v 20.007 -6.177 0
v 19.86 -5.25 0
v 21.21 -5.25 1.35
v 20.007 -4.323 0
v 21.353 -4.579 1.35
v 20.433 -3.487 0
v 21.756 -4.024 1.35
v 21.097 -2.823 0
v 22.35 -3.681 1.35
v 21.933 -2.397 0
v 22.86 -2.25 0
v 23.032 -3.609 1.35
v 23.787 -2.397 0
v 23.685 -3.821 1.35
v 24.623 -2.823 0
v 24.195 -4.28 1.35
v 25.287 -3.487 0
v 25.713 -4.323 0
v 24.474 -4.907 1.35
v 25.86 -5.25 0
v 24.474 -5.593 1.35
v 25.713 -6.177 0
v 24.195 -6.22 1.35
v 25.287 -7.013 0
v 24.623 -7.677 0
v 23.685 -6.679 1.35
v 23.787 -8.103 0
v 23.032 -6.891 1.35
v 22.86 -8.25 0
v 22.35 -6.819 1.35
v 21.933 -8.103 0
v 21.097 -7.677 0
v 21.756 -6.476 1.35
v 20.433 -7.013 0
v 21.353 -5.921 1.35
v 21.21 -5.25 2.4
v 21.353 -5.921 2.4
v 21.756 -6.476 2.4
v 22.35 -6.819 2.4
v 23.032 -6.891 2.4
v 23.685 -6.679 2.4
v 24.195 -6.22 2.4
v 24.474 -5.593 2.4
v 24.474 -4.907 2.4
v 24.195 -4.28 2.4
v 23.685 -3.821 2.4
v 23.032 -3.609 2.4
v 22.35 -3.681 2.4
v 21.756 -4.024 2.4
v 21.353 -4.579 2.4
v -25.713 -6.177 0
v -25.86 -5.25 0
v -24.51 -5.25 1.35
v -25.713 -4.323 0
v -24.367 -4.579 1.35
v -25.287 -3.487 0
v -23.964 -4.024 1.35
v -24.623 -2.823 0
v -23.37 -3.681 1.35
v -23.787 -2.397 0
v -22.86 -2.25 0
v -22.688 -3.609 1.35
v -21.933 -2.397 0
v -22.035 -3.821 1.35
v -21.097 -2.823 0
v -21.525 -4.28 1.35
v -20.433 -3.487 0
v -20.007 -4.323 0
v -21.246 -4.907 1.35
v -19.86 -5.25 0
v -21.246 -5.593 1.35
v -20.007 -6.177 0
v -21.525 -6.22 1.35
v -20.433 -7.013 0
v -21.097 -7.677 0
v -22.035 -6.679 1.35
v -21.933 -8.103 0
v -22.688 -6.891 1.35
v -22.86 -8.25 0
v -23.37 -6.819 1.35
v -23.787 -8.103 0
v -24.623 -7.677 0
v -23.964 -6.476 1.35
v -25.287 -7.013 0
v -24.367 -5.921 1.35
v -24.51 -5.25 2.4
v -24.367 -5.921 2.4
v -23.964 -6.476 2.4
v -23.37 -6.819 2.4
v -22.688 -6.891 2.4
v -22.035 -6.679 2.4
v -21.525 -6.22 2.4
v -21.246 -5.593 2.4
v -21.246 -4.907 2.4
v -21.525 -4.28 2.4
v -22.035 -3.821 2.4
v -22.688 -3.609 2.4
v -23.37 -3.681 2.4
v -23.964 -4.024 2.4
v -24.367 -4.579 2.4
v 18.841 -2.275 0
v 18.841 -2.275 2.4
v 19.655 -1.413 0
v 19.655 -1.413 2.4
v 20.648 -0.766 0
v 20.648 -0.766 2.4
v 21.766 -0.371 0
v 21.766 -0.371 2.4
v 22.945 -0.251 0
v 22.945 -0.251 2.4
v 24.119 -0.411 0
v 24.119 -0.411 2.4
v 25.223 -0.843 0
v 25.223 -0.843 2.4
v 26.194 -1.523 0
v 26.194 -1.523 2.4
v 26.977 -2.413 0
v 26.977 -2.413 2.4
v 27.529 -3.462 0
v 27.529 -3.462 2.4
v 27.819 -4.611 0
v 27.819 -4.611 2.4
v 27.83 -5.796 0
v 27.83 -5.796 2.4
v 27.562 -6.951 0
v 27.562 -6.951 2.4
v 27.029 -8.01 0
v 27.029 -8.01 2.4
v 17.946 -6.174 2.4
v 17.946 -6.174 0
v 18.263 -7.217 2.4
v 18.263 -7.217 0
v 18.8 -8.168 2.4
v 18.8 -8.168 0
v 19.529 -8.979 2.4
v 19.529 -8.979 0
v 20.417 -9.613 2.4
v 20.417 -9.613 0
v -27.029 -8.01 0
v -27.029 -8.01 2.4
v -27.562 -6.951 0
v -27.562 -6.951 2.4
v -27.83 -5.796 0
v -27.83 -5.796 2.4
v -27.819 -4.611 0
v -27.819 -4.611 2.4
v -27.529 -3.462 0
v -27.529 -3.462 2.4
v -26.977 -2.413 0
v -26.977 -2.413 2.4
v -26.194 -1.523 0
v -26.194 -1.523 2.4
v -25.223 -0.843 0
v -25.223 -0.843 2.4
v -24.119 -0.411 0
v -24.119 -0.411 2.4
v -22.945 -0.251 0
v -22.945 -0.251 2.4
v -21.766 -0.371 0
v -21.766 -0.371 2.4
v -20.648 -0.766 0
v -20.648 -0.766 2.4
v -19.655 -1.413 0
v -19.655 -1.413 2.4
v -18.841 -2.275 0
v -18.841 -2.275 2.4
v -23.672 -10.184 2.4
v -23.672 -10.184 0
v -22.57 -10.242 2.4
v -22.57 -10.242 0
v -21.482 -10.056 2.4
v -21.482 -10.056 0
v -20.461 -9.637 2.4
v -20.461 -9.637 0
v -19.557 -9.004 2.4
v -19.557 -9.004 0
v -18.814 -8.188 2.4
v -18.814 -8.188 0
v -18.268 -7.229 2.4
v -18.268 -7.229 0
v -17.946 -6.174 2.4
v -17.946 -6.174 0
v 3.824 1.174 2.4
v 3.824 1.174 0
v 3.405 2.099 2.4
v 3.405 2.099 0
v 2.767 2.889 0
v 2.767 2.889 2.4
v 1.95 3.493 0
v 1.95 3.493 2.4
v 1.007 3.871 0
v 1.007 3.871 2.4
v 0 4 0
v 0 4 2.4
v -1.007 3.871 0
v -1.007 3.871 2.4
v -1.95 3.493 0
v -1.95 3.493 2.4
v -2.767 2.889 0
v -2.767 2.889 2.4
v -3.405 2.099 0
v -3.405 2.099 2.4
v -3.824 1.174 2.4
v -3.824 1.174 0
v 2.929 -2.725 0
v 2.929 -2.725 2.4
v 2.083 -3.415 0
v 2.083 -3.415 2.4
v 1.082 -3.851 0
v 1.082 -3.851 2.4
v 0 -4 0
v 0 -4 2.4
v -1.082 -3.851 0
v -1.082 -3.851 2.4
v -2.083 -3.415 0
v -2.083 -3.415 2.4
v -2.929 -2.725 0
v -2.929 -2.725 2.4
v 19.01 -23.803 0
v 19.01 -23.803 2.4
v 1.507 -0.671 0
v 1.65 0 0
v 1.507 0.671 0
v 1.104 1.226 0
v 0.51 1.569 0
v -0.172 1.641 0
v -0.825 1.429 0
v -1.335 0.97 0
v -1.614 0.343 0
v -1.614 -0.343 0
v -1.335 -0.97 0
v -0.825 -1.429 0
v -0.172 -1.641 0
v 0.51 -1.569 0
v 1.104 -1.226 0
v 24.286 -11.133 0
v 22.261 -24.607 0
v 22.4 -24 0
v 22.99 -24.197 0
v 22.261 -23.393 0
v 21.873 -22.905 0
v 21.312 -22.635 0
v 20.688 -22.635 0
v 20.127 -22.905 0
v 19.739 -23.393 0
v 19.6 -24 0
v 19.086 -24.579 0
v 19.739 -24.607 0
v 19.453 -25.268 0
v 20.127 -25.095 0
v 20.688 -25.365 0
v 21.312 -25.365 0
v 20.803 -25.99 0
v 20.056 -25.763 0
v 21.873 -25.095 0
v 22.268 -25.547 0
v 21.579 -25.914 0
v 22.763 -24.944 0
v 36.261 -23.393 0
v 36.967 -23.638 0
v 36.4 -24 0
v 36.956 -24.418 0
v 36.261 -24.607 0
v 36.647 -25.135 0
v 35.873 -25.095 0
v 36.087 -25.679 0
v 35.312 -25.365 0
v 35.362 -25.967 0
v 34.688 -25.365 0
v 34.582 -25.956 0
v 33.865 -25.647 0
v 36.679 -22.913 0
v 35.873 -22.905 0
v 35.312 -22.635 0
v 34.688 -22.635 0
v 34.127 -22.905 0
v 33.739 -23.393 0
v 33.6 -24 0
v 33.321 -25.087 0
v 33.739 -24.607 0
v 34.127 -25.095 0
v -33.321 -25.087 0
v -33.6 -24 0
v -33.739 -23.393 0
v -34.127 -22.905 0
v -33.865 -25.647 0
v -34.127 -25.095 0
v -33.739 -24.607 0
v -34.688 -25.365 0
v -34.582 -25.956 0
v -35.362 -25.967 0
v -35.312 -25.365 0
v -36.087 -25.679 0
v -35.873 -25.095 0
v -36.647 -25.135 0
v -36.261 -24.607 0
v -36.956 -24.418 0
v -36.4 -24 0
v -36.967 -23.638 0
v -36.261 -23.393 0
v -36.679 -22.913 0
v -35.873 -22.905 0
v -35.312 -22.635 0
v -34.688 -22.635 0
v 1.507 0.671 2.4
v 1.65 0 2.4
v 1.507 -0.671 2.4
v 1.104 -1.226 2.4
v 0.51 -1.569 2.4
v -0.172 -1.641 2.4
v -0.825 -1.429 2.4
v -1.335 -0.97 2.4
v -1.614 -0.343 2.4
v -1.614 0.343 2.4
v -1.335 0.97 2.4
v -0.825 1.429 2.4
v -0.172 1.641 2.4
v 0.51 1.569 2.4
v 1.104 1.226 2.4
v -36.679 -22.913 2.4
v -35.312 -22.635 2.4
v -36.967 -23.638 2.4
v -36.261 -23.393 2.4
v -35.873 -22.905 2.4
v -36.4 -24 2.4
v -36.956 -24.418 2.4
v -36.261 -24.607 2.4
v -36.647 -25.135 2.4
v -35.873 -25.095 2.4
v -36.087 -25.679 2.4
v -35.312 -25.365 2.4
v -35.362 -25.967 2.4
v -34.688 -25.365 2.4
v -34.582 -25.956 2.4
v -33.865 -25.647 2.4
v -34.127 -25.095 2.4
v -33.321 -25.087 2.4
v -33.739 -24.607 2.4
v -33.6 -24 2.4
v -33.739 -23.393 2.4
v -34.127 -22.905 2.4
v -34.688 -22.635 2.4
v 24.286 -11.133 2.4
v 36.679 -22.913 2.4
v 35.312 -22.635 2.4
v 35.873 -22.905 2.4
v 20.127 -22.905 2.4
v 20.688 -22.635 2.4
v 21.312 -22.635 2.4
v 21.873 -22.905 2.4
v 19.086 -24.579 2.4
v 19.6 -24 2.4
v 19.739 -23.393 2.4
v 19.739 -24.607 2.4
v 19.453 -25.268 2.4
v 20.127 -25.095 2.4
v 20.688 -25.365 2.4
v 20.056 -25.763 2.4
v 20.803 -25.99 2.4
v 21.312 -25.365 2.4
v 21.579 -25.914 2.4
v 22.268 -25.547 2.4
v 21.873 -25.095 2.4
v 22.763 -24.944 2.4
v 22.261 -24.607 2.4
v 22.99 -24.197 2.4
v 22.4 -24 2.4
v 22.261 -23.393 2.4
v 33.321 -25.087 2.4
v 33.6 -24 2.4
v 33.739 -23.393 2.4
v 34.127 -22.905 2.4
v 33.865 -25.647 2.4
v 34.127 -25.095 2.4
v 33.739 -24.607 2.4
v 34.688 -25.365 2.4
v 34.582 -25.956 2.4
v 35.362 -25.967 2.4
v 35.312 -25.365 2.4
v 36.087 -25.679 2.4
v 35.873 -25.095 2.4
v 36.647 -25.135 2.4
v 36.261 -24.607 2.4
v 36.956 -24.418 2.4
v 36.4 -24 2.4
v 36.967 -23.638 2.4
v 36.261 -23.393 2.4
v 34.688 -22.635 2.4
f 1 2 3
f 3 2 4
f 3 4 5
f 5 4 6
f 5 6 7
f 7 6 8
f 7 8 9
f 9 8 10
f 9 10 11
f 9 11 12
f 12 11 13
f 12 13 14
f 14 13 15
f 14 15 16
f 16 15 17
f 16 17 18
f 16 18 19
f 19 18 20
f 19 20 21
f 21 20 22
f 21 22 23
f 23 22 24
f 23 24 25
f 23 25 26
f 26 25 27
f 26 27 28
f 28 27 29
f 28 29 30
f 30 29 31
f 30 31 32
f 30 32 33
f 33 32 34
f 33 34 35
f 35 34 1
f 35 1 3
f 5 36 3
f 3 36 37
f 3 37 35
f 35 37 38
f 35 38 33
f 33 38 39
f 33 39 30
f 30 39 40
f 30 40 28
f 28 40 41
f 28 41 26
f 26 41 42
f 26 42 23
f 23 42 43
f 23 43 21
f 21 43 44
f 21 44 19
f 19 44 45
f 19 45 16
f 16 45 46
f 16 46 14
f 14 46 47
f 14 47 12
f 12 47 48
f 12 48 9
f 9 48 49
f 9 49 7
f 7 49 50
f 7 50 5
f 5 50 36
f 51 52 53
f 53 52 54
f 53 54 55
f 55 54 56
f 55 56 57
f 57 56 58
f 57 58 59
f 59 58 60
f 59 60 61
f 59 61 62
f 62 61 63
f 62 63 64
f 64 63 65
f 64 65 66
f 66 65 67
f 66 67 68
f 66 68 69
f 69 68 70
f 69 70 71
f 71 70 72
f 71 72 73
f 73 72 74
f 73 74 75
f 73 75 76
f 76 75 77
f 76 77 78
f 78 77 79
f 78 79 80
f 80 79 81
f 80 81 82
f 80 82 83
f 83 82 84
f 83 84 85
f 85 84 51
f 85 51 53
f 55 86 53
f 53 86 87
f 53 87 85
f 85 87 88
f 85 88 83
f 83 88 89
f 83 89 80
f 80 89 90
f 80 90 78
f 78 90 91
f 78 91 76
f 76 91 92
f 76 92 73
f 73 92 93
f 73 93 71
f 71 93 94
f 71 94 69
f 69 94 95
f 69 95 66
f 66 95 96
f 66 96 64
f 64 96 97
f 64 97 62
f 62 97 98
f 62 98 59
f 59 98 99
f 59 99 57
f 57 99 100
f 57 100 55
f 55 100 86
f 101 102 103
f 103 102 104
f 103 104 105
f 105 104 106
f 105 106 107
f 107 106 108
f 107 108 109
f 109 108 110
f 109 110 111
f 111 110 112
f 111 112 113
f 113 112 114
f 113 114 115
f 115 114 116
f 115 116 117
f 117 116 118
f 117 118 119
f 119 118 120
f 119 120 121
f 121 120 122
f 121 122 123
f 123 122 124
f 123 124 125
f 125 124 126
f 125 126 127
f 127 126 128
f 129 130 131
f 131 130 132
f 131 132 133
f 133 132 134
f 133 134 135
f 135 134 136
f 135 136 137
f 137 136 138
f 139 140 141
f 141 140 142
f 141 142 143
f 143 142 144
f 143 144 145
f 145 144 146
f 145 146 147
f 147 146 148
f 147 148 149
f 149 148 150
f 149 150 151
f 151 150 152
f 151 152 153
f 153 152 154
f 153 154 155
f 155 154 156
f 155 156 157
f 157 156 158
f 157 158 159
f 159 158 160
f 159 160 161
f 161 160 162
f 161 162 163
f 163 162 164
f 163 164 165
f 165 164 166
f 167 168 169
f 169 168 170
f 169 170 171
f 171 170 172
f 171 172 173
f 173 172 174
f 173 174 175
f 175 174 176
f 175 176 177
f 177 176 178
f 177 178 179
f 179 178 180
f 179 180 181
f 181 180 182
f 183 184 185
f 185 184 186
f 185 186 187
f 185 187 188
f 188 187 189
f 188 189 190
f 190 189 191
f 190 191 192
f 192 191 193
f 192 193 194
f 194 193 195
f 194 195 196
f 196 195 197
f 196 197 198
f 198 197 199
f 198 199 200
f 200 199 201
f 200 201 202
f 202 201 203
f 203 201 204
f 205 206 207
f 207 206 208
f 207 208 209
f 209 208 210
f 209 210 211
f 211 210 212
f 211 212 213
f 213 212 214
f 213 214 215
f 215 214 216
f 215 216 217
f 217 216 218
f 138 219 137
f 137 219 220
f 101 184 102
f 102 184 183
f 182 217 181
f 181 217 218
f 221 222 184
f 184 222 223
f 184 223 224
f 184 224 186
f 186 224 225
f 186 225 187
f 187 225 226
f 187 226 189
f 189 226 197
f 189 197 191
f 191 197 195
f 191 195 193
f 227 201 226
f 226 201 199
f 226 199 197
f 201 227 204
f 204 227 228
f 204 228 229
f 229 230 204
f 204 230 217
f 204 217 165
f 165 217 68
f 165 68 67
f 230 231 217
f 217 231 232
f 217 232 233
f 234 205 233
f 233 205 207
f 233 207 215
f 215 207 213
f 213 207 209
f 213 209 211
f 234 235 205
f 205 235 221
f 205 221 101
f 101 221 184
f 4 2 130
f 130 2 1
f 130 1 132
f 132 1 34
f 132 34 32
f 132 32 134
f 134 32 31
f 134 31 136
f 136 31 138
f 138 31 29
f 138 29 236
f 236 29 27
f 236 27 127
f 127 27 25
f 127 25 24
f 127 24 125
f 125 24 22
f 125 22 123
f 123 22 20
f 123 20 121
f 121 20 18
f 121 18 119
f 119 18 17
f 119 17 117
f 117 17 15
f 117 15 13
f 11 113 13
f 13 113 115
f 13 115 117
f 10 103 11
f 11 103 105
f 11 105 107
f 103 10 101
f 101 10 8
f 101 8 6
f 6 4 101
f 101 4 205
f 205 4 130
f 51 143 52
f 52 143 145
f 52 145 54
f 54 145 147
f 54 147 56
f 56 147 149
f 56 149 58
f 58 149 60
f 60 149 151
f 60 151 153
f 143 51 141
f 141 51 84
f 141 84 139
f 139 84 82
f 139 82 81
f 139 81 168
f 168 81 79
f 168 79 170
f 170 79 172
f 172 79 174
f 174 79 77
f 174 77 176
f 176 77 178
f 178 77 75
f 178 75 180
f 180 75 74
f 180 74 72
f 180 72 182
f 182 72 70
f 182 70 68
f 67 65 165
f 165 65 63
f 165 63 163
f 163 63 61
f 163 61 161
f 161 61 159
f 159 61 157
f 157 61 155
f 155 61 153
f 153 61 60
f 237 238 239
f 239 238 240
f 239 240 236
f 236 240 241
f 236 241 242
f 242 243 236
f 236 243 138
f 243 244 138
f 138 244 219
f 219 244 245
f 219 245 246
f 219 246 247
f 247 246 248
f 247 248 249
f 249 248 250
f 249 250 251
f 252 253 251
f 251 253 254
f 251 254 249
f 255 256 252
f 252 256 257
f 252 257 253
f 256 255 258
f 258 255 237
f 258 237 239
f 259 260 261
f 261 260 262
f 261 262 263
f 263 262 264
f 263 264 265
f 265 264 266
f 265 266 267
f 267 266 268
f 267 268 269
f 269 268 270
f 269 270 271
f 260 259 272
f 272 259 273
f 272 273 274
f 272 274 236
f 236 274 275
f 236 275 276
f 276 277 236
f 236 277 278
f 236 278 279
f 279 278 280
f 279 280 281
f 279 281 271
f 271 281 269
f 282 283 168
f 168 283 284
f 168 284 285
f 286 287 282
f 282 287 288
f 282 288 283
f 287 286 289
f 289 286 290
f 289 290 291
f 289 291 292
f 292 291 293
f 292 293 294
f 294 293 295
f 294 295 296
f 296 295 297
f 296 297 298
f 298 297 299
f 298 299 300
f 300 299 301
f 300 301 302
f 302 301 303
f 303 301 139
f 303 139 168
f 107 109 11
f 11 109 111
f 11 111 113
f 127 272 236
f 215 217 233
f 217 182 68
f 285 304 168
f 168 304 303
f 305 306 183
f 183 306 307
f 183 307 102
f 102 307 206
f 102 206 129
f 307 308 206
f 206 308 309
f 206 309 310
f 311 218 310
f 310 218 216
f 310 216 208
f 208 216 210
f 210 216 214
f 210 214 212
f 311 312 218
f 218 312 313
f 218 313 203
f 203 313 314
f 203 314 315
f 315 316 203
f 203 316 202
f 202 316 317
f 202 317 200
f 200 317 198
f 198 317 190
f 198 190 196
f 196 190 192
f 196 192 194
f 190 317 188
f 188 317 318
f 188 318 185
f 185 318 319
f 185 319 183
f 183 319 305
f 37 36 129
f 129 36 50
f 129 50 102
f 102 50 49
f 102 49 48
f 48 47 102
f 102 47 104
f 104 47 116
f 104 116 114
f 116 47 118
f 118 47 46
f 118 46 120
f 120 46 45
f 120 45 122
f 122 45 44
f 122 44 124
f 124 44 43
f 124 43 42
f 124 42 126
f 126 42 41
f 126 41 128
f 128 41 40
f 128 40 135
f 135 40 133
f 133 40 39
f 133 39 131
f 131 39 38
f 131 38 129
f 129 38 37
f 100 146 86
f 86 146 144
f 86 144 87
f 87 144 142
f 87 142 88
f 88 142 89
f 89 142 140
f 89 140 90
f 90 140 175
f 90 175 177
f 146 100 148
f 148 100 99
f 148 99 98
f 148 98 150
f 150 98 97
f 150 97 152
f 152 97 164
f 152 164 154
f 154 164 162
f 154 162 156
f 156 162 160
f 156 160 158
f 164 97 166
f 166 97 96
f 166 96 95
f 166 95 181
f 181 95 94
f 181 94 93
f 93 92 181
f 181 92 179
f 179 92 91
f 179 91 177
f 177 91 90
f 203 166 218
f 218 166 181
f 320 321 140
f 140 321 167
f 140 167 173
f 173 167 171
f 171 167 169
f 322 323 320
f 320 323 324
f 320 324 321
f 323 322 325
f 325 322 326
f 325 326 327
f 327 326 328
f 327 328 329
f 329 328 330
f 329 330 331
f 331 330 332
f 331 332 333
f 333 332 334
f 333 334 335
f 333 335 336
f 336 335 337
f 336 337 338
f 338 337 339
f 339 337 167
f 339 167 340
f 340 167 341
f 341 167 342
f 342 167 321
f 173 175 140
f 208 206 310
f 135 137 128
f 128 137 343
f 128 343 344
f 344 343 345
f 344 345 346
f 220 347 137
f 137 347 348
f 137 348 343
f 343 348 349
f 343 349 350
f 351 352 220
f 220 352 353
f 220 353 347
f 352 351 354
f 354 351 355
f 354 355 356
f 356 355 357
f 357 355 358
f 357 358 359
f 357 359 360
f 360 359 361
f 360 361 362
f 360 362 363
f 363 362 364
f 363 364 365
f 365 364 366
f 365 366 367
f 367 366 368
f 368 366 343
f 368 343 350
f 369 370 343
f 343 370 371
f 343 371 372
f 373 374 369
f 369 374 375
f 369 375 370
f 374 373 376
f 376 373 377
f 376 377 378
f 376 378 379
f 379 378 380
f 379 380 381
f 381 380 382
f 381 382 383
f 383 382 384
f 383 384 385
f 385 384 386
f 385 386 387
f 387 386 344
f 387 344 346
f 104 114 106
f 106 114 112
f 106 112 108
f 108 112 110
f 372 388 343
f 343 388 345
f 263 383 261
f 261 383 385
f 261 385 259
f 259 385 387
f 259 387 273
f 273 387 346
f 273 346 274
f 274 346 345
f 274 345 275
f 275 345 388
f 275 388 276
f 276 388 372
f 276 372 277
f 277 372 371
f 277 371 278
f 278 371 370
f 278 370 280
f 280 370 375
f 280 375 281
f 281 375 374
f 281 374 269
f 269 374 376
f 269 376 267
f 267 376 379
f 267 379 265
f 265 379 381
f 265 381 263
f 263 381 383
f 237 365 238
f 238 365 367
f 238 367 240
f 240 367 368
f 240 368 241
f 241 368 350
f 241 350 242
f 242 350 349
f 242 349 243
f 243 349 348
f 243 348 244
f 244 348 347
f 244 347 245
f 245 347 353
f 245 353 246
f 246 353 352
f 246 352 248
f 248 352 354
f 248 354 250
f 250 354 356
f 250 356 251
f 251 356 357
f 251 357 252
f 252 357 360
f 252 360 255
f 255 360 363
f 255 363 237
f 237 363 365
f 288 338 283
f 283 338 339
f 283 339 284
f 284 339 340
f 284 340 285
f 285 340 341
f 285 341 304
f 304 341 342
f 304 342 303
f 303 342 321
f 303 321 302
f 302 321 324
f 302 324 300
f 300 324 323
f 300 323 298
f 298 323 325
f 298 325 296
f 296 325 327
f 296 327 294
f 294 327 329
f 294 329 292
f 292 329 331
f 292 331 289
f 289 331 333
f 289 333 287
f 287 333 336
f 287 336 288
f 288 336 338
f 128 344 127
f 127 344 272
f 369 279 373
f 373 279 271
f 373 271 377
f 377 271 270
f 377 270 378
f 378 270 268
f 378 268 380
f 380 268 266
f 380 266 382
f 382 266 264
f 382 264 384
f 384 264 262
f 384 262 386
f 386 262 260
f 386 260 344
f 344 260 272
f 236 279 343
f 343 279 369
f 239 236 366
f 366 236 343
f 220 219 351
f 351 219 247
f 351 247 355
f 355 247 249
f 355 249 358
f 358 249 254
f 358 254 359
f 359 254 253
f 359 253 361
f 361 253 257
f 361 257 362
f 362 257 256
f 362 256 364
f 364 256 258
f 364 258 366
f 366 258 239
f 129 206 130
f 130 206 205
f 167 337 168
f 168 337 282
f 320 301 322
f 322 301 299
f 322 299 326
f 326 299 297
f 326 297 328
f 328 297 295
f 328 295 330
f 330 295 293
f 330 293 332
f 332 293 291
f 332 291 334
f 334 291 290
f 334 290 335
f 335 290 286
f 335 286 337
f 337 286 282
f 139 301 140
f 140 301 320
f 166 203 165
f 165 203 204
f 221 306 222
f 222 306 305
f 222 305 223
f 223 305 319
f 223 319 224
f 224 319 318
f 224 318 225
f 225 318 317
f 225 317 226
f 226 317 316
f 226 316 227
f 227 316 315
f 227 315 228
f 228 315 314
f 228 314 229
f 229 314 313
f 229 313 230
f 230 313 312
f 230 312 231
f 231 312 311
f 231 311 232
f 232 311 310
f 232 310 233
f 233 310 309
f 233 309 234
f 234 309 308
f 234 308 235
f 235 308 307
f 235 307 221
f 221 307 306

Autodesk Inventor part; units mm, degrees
sketch "Sketch1" plane through (0, 0, 0) normal (0, 0, 1) x (1, 0, 0)
  line L0 (0, 1.6506) -> (0, -1.6506) construction
  line L1 (-3.3363, 0) -> (3.3363, 0) construction
  circle A0 centre (-22.86, -5.25) radius 2
  circle A1 centre (22.86, -5.25) radius 2
  circle A2 centre (0, 0) radius 2
  circle A3 centre (-35, -24) radius 2
  circle A4 centre (21, -24) radius 2
  circle A5 centre (35, -24) radius 2
  line L2 (-36.6788, -22.913) -> (-24.5388, -4.163)
  line L3 (-21.1812, -6.337) -> (-33.3212, -25.087)
  line L4 (33.3212, -25.087) -> (21.1812, -6.337)
  line L5 (24.5388, -4.163) -> (36.6788, -22.913)
  line L6 (23.3077, -3.3007) -> (0.4477, 1.9493)
  line L7 (-22.4123, -7.1993) -> (0.4477, -1.9493)
  line L8 (-23.3077, -3.3007) -> (-0.4477, 1.9493)
  line L9 (-0.4477, -1.9493) -> (22.4123, -7.1993)
  line L10 (19.0098, -23.8026) -> (20.8698, -5.0526)
  line L11 (22.9902, -24.1974) -> (24.8502, -5.4474)
  point P0 (19.0231, -24.3028)
  point P1 (1.0254, -1.7172)
  point P2 (-21.6219, -7.0177)
  point P3 (0, 3.0781)
  point P4 (22.9979, -23.9085)
  point P5 (21.6219, -7.0177)
  point P6 (24.2863, -11.1327)
  point P7 (20.6959, -6.8051)
  dimension "d0" = 45.72
  dimension "d1" = 22.86
  dimension "d4" = 4
  dimension "d5" = 4
  dimension "d6" = 4
  dimension "d7" = 18.75
  dimension "d8" = 18.75
  dimension "d9" = 14
  dimension "d10" = 18.75
  dimension "d11" = 56
  dimension "d12" = 70
  dimension "d13" = 35
  dimension "d14" = 4
  dimension "d15" = 4
  dimension "d16" = 4
  dimension "d34" = 5.25
  dimension "d35" = 5.25
extrude "Extrusion1" add sketch "Sketch1" along normal blind 2.4
sketch "Sketch2" plane through (0, 0, 2.4) normal (0, 0, 1) x (1, 0, 0)
  line L0 (-21.6219, -7.0177) -> (-33.3212, -25.087) projected
  arc A0 (-36.6788, -22.913) -> (-33.3212, -25.087) centre (-35, -24) ccw projected
  line L1 (-36.6788, -22.913) -> (-24.5388, -4.163) projected
  arc A1 (-23.3077, -3.3007) -> (-24.5388, -4.163) centre (-22.86, -5.25) ccw projected
  line L2 (-23.3077, -3.3007) -> (-0.4477, 1.9493) projected
  line L3 (24.5388, -4.163) -> (36.6788, -22.913) projected
  arc A2 (33.3212, -25.087) -> (36.6788, -22.913) centre (35, -24) ccw projected
  line L4 (33.3212, -25.087) -> (24.2863, -11.1327) projected
  line L5 (0, -2.0521) -> (-21.6219, -7.0177) projected
  arc A3 (19.0098, -23.8026) -> (22.9902, -24.1974) centre (21, -24) ccw projected
  line L6 (0.4477, 1.9493) -> (23.3077, -3.3007) projected
  arc A4 (24.5388, -4.163) -> (23.3077, -3.3007) centre (22.86, -5.25) ccw projected
  arc A5 (0.4477, 1.9493) -> (-0.4477, 1.9493) centre (0, 0) ccw projected
  line L7 (20.6959, -6.8051) -> (0, -2.0521) projected
  line L8 (24.2863, -11.1327) -> (22.9902, -24.1974) projected
  line L9 (19.0098, -23.8026) -> (20.6959, -6.8051) projected
hole "Hole1" at (-35, -24, 2.4) at (21, -24, 2.4) at (35, -24, 2.4) direction (0, 0, -1) diameter 2.8 depth 2.4
sketch "Sketch3" plane through (0, 0, 2.4) normal (0, 0, 1) x (1, 0, 0)
  circle A0 centre (35, -24) radius 1.4 projected
  circle A1 centre (21, -24) radius 1.4 projected
  circle A2 centre (-35, -24) radius 1.4 projected
  line L0 (-21.6219, -7.0177) -> (-33.3212, -25.087) projected
  arc A3 (-36.6788, -22.913) -> (-33.3212, -25.087) centre (-35, -24) ccw projected
  line L1 (-36.6788, -22.913) -> (-24.5388, -4.163) projected
  arc A4 (-23.3077, -3.3007) -> (-24.5388, -4.163) centre (-22.86, -5.25) ccw projected
  line L2 (-23.3077, -3.3007) -> (-0.4477, 1.9493) projected
  line L3 (24.5388, -4.163) -> (36.6788, -22.913) projected
  arc A5 (33.3212, -25.087) -> (36.6788, -22.913) centre (35, -24) ccw projected
  line L4 (33.3212, -25.087) -> (24.2863, -11.1327) projected
  line L5 (0, -2.0521) -> (-21.6219, -7.0177) projected
  arc A6 (19.0098, -23.8026) -> (22.9902, -24.1974) centre (21, -24) ccw projected
  line L6 (0.4477, 1.9493) -> (23.3077, -3.3007) projected
  arc A7 (24.5388, -4.163) -> (23.3077, -3.3007) centre (22.86, -5.25) ccw projected
  arc A8 (0.4477, 1.9493) -> (-0.4477, 1.9493) centre (0, 0) ccw projected
  line L7 (20.6959, -6.8051) -> (0, -2.0521) projected
  line L8 (24.2863, -11.1327) -> (22.9902, -24.1974) projected
  line L9 (19.0098, -23.8026) -> (20.6959, -6.8051) projected
  circle A9 centre (-22.86, -5.25) radius 5
  circle A10 centre (0, 0) radius 4
  circle A11 centre (22.86, -5.25) radius 5
  dimension "d36" = 10
  dimension "d37" = 8
  dimension "d38" = 10
extrude "Extrusion3" add sketch "Sketch3" against normal up to surface (2.4 mm away) contours L5 A9 L0 | L0 A9 L1 A4 L2 L5 | A9 L2 A4 L1 | A10 L2 A8 L6 L7 L5 | L5 L7 A10 | A10 L6 A8 L2 | A11 L6 A7 L3 L9 L7 | L7 L9 A11 | A11 L3 A7 L6
sketch "Sketch4" plane through (0, 0, 0) normal (0, 0, -1) x (-1, 0, 0)
  arc A0 (-2.9285, -2.7246) -> (2.9285, -2.7246) centre (0, 0) ccw projected
  line L0 (-2.9285, -2.7246) -> (-17.946, -6.1735) projected
  arc A1 (-20.4174, -9.6128) -> (-17.946, -6.1735) centre (-22.86, -5.25) ccw projected
  line L1 (-20.4174, -9.6128) -> (-19.0098, -23.8026) projected
  arc A2 (-22.9902, -24.1974) -> (-19.0098, -23.8026) centre (-21, -24) ccw projected
  line L2 (-22.9902, -24.1974) -> (-24.2863, -11.1327) projected
  line L3 (-24.2863, -11.1327) -> (-33.3212, -25.087) projected
  arc A3 (-36.6788, -22.913) -> (-33.3212, -25.087) centre (-35, -24) ccw projected
  line L4 (-36.6788, -22.913) -> (-27.0294, -8.0097) projected
  arc A4 (-18.8414, -2.275) -> (-27.0294, -8.0097) centre (-22.86, -5.25) ccw projected
  line L5 (-18.8414, -2.275) -> (-3.8239, 1.1739) projected
  arc A5 (3.8239, 1.1739) -> (-3.8239, 1.1739) centre (0, 0) ccw projected
  line L6 (3.8239, 1.1739) -> (18.8414, -2.275) projected
  arc A6 (27.0294, -8.0097) -> (18.8414, -2.275) centre (22.86, -5.25) ccw projected
  line L7 (27.0294, -8.0097) -> (36.6788, -22.913) projected
  arc A7 (33.3212, -25.087) -> (36.6788, -22.913) centre (35, -24) ccw projected
  line L8 (33.3212, -25.087) -> (23.6718, -10.1837) projected
  arc A8 (17.946, -6.1735) -> (23.6718, -10.1837) centre (22.86, -5.25) ccw projected
  line L9 (17.946, -6.1735) -> (2.9285, -2.7246) projected
  circle A9 centre (-21, -24) radius 1.4 projected
  circle A10 centre (-35, -24) radius 1.4 projected
  circle A11 centre (35, -24) radius 1.4 projected
hole "Hole3" at (-22.86, -5.25, 0) at (22.86, -5.25, 0) direction (0, 0, 1) diameter 3.3 depth 2.4 countersink diameter 6 countersink angle 90
sketch "Sketch5" plane through (0, 0, 2.4) normal (0, 0, 1) x (1, 0, 0)
  circle A0 centre (22.86, -5.25) radius 1.65 projected
  circle A1 centre (-22.86, -5.25) radius 1.65 projected
  arc A2 (-2.9285, -2.7246) -> (2.9285, -2.7246) centre (0, 0) ccw projected
  line L0 (-2.9285, -2.7246) -> (-17.946, -6.1735) projected
  arc A3 (-23.6718, -10.1837) -> (-17.946, -6.1735) centre (-22.86, -5.25) ccw projected
  line L1 (-23.6718, -10.1837) -> (-33.3212, -25.087) projected
  arc A4 (-36.6788, -22.913) -> (-33.3212, -25.087) centre (-35, -24) ccw projected
  line L2 (-36.6788, -22.913) -> (-27.0294, -8.0097) projected
  arc A5 (-18.8414, -2.275) -> (-27.0294, -8.0097) centre (-22.86, -5.25) ccw projected
  line L3 (-18.8414, -2.275) -> (-3.8239, 1.1739) projected
  arc A6 (3.8239, 1.1739) -> (-3.8239, 1.1739) centre (0, 0) ccw projected
  line L4 (3.8239, 1.1739) -> (18.8414, -2.275) projected
  arc A7 (27.0294, -8.0097) -> (18.8414, -2.275) centre (22.86, -5.25) ccw projected
  line L5 (27.0294, -8.0097) -> (36.6788, -22.913) projected
  arc A8 (33.3212, -25.087) -> (36.6788, -22.913) centre (35, -24) ccw projected
  line L6 (33.3212, -25.087) -> (24.2863, -11.1327) projected
  line L7 (24.2863, -11.1327) -> (22.9902, -24.1974) projected
  arc A9 (19.0098, -23.8026) -> (22.9902, -24.1974) centre (21, -24) ccw projected
  line L8 (19.0098, -23.8026) -> (20.4174, -9.6128) projected
  arc A10 (17.946, -6.1735) -> (20.4174, -9.6128) centre (22.86, -5.25) ccw projected
  line L9 (17.946, -6.1735) -> (2.9285, -2.7246) projected
  circle A11 centre (21, -24) radius 1.4 projected
  circle A12 centre (35, -24) radius 1.4 projected
  circle A13 centre (-35, -24) radius 1.4 projected
hole "Hole4" at (0, 0, 2.4) direction (0, 0, -1) diameter 3.3 depth 2.4
equation "\"d8\" = d7"
equation "\"d10\" = d8"
equation "\"d13\" = 0.5 * d12"
equation "\"d35\" = d34"
properties part number "PD_Sensor" material "S235"
